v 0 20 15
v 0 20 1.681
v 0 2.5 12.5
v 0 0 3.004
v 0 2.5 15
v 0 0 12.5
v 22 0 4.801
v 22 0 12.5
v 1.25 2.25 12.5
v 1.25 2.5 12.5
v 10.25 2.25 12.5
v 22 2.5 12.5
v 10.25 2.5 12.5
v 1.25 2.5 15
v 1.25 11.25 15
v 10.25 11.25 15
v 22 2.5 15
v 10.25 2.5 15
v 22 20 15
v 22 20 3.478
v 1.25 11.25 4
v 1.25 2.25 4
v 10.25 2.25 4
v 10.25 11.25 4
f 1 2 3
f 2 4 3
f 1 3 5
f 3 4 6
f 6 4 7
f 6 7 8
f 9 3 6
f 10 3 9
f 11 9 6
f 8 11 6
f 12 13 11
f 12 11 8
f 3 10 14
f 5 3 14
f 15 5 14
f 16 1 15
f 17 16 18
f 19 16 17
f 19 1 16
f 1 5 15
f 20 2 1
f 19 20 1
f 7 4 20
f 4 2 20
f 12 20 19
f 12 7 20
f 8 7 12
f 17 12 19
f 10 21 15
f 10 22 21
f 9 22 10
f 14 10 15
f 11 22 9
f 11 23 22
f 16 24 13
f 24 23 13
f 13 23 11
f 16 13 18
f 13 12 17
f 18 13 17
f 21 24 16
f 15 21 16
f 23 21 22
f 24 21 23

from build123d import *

# Parameters (mm, degrees)
BOX003_W               = 24
BOX003_H               = 23
BOX003_DEPTH           = 10
BOX003_ROLL_ANGLE      = -3.785379
BOX003_PITCH_ANGLE     = -4.658595
BOX003_PLACEMENT_ANGLE = 0.154031
BOX002_W               = 22
BOX002_H               = 2.5
BOX002_DEPTH           = 2.5
BOX001_W               = 9
BOX001_H               = 9
BOX001_DEPTH           = 11
BOX_W                  = 22
BOX_H                  = 20
BOX_DEPTH              = 15


with BuildPart() as cube003:
    # Box003 → Box003 (new body)
    with BuildSketch(Plane.XY):
        with Locations((12, 11.5)):
            Rectangle(BOX003_W, BOX003_H)
    extrude(amount=BOX003_DEPTH)


with BuildPart() as cube003_1:
    # Box003 roll: moved
    add(cube003.part.rotate(Axis((0, 0, 0), (1, 0, 0)), BOX003_ROLL_ANGLE))


with BuildPart() as cube003_2:
    # Box003 pitch: moved
    add(cube003_1.part.rotate(Axis((0, 0, 0), (0, 1, 0)), BOX003_PITCH_ANGLE))


with BuildPart() as cube003_3:
    # Box003 placement: moved
    add(cube003_2.part.moved(Location((-1, -2, -7))).rotate(Axis((-1, -2, -7), (0, 0, 1)), BOX003_PLACEMENT_ANGLE))


with BuildPart() as cube002:
    # Box002 → Box002 (new body)
    with BuildSketch(Plane.XY.offset(12.5)):
        with Locations((11, 1.25)):
            Rectangle(BOX002_W, BOX002_H)
    extrude(amount=BOX002_DEPTH)


with BuildPart() as cube001:
    # Box001 → Box001 (new body)
    with BuildSketch(Plane(origin=(1.25, 2.25, 4), x_dir=(1, 0, 0), z_dir=(0, 0, 1))):
        with Locations((4.5, 4.5)):
            Rectangle(BOX001_W, BOX001_H)
    extrude(amount=BOX001_DEPTH)


with BuildPart() as cut002:
    # Box → Box (new body)
    with BuildSketch(Plane.XY):
        with Locations((11, 10)):
            Rectangle(BOX_W, BOX_H)
    extrude(amount=BOX_DEPTH)

    # Cut: cut Cube001
    add(cube001.part, mode=Mode.SUBTRACT)

    # Cut001: cut Cube002
    add(cube002.part, mode=Mode.SUBTRACT)

    # Cut002: cut Cube003
    add(cube003_3.part, mode=Mode.SUBTRACT)


solid = cut002.part
